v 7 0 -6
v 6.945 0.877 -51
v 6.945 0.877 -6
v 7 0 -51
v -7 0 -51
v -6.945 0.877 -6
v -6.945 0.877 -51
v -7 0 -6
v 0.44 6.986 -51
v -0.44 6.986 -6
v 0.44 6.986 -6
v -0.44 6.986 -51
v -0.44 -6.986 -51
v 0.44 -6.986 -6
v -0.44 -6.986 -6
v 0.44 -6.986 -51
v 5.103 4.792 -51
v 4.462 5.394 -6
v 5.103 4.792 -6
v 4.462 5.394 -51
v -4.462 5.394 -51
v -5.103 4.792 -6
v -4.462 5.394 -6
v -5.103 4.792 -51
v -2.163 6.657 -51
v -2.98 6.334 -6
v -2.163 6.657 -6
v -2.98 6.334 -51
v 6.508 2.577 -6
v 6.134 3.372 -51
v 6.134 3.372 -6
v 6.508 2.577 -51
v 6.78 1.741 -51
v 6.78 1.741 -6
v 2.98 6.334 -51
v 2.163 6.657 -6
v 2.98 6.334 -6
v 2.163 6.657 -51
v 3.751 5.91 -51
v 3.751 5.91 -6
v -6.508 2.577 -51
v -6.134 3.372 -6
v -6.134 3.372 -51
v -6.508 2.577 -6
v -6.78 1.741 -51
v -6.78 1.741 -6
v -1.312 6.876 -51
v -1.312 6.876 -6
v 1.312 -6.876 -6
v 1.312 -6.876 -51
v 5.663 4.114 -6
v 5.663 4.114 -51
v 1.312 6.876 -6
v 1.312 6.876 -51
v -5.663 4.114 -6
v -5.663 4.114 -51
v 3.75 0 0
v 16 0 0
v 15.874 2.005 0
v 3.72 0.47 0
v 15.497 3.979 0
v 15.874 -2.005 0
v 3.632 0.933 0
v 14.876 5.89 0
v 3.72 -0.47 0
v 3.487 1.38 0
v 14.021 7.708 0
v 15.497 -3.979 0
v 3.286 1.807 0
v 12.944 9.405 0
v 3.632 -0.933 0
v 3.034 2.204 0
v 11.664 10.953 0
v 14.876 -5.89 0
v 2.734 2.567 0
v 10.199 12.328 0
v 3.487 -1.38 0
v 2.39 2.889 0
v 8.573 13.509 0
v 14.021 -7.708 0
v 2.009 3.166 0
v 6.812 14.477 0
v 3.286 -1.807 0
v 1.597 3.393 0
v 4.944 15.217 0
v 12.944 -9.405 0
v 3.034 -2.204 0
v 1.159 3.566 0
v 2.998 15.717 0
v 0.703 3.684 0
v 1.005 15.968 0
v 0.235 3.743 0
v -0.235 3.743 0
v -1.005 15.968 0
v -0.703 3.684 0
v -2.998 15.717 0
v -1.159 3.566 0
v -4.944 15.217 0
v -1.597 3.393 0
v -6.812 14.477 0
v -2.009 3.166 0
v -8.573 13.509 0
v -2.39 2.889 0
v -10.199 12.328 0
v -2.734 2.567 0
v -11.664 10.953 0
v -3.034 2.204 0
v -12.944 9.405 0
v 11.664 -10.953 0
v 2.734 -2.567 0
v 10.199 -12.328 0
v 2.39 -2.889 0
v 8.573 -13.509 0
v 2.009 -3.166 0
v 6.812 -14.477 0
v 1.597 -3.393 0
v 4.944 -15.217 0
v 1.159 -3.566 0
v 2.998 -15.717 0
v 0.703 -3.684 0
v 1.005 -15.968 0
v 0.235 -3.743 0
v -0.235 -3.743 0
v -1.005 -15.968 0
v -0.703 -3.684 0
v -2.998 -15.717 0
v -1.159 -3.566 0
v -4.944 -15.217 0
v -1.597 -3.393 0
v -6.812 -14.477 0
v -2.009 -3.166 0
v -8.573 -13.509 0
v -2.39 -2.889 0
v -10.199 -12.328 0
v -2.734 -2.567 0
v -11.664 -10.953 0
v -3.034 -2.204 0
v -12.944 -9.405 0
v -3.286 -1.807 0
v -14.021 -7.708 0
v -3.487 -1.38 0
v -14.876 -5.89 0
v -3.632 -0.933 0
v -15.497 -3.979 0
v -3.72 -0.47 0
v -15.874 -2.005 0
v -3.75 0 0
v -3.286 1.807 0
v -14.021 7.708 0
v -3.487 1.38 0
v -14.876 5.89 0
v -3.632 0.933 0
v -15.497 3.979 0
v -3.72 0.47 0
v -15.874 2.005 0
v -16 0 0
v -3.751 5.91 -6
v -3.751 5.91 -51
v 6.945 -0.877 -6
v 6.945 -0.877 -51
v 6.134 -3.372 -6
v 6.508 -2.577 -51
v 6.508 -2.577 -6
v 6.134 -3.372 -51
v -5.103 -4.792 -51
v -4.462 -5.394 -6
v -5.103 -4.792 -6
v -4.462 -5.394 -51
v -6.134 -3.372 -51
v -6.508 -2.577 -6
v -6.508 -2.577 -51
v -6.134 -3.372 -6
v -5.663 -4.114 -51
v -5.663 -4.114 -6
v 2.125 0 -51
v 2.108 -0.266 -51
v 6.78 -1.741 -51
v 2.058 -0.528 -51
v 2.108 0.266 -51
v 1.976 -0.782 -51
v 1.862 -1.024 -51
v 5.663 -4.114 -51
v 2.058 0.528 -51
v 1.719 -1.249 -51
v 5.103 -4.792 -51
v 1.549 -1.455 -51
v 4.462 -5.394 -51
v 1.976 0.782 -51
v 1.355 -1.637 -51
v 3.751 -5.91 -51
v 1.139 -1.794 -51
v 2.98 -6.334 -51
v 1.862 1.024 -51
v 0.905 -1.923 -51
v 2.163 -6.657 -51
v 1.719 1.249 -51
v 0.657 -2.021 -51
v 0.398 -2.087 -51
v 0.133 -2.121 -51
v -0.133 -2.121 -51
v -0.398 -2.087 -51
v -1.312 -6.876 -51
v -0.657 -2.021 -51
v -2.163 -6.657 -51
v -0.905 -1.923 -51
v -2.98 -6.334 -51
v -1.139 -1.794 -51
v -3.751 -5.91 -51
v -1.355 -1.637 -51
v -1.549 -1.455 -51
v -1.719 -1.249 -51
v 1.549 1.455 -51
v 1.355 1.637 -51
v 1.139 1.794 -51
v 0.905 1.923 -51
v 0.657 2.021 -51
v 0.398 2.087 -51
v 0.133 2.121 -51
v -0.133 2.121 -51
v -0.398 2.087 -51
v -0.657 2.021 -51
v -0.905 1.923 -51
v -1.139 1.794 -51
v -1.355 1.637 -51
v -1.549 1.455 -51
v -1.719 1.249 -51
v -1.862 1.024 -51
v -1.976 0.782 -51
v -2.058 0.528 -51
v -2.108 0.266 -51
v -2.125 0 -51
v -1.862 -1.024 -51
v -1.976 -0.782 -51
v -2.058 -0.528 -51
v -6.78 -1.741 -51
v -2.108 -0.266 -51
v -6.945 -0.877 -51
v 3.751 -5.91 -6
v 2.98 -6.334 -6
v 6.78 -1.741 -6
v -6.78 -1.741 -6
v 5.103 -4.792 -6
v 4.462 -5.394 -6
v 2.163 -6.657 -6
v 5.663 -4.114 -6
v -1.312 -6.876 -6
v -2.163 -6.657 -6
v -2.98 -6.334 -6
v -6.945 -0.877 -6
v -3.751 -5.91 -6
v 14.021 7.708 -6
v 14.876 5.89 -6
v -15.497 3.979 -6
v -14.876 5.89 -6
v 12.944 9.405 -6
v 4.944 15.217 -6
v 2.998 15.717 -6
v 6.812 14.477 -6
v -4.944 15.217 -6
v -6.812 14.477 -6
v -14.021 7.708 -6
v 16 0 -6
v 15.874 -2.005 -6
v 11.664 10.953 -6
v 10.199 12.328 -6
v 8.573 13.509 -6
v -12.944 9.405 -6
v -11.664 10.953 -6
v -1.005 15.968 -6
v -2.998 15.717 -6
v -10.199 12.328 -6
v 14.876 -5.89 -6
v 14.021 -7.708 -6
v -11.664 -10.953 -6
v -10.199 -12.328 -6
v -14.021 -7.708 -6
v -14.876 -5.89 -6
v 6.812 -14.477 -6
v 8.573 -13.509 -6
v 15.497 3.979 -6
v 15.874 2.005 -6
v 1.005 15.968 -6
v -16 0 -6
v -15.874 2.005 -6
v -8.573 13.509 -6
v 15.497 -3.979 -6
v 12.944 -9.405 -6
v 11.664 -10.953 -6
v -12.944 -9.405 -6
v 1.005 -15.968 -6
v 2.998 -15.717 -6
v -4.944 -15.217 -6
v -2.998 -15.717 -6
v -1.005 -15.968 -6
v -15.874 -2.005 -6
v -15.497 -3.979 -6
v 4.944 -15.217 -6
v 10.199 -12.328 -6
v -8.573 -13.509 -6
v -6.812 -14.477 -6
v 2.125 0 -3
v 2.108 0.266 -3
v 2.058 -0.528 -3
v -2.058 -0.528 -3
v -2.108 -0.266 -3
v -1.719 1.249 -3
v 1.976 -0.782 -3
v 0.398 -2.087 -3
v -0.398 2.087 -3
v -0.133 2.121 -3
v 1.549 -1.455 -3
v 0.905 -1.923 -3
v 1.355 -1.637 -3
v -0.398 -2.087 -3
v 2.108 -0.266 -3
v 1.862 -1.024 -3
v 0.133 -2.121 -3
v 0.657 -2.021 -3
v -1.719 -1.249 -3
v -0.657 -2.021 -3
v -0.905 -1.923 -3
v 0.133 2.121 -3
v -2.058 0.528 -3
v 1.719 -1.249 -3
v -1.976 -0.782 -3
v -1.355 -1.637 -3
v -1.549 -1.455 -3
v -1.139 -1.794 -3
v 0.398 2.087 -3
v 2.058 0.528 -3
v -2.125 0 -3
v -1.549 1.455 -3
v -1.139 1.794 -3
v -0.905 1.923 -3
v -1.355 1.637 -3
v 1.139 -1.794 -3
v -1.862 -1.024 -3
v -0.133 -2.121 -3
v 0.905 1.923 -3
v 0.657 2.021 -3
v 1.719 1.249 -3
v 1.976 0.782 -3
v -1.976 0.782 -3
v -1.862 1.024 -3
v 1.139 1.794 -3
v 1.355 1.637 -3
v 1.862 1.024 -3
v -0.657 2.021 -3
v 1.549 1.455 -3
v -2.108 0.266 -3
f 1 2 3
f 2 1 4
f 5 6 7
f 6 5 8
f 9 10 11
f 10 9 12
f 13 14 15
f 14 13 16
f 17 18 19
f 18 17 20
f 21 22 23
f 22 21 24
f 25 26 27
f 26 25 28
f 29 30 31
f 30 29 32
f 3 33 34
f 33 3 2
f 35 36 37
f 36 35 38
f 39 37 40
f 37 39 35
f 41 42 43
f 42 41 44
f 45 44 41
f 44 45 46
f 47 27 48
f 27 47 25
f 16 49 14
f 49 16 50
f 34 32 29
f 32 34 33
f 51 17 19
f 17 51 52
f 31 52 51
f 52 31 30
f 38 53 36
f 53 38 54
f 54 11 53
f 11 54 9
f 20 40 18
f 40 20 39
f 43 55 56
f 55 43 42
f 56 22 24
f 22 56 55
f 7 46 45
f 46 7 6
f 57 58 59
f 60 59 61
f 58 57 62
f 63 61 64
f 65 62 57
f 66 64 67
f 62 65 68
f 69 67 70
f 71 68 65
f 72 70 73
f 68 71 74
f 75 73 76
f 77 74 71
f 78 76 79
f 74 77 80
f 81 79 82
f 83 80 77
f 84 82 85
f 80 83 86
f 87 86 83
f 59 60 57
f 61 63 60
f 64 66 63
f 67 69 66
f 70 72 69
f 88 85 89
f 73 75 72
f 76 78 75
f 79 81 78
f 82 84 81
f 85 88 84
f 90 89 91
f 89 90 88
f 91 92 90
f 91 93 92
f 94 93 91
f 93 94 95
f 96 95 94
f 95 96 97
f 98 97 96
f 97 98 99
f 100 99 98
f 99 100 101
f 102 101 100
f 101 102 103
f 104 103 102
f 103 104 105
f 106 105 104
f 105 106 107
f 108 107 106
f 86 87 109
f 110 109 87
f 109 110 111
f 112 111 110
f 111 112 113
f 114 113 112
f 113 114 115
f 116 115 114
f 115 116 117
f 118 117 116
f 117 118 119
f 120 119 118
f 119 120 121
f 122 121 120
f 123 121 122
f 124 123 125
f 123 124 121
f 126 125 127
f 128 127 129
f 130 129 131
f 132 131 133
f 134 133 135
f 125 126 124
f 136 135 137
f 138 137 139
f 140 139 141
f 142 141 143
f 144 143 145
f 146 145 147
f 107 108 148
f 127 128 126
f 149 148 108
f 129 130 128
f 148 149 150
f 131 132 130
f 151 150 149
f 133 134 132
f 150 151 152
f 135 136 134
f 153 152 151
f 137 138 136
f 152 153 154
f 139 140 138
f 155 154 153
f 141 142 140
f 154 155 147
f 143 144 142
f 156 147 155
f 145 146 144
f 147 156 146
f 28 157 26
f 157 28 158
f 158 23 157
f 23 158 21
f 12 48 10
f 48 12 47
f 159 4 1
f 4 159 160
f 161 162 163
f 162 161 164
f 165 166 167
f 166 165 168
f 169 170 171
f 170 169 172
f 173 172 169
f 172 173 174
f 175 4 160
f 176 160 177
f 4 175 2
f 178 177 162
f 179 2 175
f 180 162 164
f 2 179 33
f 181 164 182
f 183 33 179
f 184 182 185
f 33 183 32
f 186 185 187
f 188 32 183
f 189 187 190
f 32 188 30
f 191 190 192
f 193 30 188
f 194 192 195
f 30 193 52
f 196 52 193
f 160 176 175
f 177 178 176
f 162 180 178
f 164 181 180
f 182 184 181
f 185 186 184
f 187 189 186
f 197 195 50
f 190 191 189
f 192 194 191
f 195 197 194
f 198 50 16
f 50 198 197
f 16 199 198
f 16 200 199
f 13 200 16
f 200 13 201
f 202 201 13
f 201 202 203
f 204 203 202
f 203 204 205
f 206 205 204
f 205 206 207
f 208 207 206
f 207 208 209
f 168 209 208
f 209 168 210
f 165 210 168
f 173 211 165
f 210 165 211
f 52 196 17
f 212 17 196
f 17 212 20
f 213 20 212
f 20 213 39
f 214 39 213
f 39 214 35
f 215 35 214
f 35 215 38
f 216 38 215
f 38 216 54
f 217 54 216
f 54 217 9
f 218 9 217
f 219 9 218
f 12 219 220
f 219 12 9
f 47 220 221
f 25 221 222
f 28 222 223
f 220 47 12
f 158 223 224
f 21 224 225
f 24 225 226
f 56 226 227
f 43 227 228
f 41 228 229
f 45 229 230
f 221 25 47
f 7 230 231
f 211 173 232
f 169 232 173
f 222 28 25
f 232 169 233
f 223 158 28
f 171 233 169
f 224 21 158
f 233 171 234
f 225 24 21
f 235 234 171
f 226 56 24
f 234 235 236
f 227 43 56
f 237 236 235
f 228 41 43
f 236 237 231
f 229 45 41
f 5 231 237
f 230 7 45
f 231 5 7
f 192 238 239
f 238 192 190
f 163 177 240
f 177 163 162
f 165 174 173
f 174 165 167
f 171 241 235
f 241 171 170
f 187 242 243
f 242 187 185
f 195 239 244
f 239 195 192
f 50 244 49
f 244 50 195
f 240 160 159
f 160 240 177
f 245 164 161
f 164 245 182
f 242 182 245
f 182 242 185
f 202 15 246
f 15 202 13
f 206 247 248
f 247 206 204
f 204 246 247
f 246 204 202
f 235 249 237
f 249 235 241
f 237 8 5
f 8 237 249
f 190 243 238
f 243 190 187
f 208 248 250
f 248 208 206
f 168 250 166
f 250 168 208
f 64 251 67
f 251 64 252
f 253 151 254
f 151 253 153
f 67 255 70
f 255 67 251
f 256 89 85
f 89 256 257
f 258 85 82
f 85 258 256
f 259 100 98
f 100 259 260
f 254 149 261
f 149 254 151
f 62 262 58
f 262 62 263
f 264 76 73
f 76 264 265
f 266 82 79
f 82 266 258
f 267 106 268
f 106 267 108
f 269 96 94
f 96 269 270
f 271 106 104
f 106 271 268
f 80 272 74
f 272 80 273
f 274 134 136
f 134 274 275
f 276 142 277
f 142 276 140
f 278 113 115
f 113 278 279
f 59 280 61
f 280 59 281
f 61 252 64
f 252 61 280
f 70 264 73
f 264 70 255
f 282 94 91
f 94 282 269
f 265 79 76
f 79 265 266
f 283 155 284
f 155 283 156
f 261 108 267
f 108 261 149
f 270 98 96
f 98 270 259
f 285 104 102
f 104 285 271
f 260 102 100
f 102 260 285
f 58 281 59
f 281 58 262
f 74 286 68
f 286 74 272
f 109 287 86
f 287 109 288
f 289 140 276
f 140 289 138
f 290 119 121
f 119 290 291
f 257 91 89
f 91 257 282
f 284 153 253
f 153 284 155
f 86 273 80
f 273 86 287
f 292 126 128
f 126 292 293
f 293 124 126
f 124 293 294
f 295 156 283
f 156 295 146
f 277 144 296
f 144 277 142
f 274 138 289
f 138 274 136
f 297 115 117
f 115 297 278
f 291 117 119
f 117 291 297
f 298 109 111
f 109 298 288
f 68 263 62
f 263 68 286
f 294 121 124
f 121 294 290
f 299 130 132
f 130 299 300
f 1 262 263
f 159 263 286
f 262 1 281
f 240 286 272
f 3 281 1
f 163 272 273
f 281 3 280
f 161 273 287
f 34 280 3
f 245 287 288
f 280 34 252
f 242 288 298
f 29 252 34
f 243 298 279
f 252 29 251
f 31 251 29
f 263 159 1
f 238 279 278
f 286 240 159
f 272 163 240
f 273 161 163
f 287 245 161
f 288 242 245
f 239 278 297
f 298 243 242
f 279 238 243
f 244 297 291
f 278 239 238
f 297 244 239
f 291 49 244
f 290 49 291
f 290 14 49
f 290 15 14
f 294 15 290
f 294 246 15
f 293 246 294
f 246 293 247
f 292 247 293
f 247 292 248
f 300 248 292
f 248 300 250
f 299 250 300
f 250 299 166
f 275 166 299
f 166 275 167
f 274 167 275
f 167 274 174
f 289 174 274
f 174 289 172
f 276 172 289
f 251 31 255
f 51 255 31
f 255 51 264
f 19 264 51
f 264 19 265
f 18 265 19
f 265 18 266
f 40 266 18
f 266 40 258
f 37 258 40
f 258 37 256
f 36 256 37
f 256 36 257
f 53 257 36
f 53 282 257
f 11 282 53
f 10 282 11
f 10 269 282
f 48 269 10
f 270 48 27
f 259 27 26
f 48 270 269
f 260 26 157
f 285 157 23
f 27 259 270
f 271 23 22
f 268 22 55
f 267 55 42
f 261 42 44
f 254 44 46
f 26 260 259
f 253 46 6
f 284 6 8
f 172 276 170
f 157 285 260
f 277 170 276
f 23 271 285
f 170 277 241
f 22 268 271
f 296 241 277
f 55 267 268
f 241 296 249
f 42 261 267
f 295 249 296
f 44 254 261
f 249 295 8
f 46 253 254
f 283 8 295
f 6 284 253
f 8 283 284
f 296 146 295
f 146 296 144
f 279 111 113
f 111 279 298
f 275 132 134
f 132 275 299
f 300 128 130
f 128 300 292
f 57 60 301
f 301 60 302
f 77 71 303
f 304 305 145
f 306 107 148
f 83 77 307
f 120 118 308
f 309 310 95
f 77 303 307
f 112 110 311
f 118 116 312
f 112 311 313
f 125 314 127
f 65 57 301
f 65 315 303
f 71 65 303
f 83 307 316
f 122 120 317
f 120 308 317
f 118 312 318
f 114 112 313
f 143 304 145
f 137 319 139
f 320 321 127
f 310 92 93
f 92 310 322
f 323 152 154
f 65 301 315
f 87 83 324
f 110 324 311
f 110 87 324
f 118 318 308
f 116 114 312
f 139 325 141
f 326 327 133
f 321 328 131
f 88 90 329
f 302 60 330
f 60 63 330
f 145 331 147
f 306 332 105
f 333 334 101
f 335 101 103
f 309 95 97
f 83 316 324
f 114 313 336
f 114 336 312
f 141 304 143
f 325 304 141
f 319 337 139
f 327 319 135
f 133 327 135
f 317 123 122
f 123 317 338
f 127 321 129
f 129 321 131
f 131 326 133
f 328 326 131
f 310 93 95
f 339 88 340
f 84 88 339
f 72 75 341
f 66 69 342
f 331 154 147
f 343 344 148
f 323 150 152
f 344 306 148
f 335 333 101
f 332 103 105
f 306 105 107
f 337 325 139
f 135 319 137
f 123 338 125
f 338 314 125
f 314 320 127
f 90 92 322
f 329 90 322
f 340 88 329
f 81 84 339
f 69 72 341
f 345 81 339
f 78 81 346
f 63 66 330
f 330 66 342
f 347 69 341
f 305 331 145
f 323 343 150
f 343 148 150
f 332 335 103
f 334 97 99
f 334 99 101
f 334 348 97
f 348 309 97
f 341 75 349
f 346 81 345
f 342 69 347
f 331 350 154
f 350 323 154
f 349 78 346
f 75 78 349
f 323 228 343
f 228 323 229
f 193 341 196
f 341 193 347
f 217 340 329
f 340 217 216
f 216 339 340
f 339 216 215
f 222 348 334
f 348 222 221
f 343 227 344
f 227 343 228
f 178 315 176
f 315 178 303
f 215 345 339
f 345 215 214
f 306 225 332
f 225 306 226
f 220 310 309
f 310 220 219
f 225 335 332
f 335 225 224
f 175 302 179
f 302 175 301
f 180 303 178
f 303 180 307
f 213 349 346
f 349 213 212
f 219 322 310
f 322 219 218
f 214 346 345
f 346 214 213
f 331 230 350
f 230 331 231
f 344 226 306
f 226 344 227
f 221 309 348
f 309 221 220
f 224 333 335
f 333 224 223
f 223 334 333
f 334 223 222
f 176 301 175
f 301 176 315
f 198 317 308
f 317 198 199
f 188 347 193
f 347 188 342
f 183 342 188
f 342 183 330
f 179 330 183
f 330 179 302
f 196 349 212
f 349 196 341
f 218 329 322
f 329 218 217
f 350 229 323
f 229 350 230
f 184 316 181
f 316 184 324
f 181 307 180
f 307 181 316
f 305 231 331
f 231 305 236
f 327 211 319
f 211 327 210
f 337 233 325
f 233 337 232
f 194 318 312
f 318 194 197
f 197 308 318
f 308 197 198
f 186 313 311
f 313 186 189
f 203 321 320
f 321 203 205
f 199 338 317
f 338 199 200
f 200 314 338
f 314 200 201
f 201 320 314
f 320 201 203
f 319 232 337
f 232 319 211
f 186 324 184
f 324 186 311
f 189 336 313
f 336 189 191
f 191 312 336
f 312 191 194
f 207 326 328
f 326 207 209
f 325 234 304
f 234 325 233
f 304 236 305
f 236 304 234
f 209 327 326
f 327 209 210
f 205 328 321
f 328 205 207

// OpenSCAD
$fn = 50;


difference() {
	union() {
		translate(v = [0, 0, -51.0000000000]) {
			cylinder(h = 51, r = 7.0000000000);
		}
		translate(v = [0, 0, -6.0000000000]) {
			cylinder(h = 6, r = 16.0000000000);
		}
	}
	union() {
		translate(v = [0, 0, 0]) {
			rotate(a = [0, 0, 0]) {
				difference() {
					union() {
						#translate(v = [0, 0, -51.0000000000]) {
							cylinder(h = 51, r = 2.0000000000);
						}
						#translate(v = [0, 0, -3]) {
							cylinder(h = 3, r = 7.0000000000, r1 = 2.1250000000, r2 = 3.7500000000);
						}
						#translate(v = [0, 0, -51.0000000000]) {
							cylinder(h = 51, r = 2.1250000000);
						}
						#translate(v = [0, 0, -51.0000000000]) {
							cylinder(h = 51, r = 2.0000000000);
						}
					}
					union();
				}
			}
		}
	}
}
